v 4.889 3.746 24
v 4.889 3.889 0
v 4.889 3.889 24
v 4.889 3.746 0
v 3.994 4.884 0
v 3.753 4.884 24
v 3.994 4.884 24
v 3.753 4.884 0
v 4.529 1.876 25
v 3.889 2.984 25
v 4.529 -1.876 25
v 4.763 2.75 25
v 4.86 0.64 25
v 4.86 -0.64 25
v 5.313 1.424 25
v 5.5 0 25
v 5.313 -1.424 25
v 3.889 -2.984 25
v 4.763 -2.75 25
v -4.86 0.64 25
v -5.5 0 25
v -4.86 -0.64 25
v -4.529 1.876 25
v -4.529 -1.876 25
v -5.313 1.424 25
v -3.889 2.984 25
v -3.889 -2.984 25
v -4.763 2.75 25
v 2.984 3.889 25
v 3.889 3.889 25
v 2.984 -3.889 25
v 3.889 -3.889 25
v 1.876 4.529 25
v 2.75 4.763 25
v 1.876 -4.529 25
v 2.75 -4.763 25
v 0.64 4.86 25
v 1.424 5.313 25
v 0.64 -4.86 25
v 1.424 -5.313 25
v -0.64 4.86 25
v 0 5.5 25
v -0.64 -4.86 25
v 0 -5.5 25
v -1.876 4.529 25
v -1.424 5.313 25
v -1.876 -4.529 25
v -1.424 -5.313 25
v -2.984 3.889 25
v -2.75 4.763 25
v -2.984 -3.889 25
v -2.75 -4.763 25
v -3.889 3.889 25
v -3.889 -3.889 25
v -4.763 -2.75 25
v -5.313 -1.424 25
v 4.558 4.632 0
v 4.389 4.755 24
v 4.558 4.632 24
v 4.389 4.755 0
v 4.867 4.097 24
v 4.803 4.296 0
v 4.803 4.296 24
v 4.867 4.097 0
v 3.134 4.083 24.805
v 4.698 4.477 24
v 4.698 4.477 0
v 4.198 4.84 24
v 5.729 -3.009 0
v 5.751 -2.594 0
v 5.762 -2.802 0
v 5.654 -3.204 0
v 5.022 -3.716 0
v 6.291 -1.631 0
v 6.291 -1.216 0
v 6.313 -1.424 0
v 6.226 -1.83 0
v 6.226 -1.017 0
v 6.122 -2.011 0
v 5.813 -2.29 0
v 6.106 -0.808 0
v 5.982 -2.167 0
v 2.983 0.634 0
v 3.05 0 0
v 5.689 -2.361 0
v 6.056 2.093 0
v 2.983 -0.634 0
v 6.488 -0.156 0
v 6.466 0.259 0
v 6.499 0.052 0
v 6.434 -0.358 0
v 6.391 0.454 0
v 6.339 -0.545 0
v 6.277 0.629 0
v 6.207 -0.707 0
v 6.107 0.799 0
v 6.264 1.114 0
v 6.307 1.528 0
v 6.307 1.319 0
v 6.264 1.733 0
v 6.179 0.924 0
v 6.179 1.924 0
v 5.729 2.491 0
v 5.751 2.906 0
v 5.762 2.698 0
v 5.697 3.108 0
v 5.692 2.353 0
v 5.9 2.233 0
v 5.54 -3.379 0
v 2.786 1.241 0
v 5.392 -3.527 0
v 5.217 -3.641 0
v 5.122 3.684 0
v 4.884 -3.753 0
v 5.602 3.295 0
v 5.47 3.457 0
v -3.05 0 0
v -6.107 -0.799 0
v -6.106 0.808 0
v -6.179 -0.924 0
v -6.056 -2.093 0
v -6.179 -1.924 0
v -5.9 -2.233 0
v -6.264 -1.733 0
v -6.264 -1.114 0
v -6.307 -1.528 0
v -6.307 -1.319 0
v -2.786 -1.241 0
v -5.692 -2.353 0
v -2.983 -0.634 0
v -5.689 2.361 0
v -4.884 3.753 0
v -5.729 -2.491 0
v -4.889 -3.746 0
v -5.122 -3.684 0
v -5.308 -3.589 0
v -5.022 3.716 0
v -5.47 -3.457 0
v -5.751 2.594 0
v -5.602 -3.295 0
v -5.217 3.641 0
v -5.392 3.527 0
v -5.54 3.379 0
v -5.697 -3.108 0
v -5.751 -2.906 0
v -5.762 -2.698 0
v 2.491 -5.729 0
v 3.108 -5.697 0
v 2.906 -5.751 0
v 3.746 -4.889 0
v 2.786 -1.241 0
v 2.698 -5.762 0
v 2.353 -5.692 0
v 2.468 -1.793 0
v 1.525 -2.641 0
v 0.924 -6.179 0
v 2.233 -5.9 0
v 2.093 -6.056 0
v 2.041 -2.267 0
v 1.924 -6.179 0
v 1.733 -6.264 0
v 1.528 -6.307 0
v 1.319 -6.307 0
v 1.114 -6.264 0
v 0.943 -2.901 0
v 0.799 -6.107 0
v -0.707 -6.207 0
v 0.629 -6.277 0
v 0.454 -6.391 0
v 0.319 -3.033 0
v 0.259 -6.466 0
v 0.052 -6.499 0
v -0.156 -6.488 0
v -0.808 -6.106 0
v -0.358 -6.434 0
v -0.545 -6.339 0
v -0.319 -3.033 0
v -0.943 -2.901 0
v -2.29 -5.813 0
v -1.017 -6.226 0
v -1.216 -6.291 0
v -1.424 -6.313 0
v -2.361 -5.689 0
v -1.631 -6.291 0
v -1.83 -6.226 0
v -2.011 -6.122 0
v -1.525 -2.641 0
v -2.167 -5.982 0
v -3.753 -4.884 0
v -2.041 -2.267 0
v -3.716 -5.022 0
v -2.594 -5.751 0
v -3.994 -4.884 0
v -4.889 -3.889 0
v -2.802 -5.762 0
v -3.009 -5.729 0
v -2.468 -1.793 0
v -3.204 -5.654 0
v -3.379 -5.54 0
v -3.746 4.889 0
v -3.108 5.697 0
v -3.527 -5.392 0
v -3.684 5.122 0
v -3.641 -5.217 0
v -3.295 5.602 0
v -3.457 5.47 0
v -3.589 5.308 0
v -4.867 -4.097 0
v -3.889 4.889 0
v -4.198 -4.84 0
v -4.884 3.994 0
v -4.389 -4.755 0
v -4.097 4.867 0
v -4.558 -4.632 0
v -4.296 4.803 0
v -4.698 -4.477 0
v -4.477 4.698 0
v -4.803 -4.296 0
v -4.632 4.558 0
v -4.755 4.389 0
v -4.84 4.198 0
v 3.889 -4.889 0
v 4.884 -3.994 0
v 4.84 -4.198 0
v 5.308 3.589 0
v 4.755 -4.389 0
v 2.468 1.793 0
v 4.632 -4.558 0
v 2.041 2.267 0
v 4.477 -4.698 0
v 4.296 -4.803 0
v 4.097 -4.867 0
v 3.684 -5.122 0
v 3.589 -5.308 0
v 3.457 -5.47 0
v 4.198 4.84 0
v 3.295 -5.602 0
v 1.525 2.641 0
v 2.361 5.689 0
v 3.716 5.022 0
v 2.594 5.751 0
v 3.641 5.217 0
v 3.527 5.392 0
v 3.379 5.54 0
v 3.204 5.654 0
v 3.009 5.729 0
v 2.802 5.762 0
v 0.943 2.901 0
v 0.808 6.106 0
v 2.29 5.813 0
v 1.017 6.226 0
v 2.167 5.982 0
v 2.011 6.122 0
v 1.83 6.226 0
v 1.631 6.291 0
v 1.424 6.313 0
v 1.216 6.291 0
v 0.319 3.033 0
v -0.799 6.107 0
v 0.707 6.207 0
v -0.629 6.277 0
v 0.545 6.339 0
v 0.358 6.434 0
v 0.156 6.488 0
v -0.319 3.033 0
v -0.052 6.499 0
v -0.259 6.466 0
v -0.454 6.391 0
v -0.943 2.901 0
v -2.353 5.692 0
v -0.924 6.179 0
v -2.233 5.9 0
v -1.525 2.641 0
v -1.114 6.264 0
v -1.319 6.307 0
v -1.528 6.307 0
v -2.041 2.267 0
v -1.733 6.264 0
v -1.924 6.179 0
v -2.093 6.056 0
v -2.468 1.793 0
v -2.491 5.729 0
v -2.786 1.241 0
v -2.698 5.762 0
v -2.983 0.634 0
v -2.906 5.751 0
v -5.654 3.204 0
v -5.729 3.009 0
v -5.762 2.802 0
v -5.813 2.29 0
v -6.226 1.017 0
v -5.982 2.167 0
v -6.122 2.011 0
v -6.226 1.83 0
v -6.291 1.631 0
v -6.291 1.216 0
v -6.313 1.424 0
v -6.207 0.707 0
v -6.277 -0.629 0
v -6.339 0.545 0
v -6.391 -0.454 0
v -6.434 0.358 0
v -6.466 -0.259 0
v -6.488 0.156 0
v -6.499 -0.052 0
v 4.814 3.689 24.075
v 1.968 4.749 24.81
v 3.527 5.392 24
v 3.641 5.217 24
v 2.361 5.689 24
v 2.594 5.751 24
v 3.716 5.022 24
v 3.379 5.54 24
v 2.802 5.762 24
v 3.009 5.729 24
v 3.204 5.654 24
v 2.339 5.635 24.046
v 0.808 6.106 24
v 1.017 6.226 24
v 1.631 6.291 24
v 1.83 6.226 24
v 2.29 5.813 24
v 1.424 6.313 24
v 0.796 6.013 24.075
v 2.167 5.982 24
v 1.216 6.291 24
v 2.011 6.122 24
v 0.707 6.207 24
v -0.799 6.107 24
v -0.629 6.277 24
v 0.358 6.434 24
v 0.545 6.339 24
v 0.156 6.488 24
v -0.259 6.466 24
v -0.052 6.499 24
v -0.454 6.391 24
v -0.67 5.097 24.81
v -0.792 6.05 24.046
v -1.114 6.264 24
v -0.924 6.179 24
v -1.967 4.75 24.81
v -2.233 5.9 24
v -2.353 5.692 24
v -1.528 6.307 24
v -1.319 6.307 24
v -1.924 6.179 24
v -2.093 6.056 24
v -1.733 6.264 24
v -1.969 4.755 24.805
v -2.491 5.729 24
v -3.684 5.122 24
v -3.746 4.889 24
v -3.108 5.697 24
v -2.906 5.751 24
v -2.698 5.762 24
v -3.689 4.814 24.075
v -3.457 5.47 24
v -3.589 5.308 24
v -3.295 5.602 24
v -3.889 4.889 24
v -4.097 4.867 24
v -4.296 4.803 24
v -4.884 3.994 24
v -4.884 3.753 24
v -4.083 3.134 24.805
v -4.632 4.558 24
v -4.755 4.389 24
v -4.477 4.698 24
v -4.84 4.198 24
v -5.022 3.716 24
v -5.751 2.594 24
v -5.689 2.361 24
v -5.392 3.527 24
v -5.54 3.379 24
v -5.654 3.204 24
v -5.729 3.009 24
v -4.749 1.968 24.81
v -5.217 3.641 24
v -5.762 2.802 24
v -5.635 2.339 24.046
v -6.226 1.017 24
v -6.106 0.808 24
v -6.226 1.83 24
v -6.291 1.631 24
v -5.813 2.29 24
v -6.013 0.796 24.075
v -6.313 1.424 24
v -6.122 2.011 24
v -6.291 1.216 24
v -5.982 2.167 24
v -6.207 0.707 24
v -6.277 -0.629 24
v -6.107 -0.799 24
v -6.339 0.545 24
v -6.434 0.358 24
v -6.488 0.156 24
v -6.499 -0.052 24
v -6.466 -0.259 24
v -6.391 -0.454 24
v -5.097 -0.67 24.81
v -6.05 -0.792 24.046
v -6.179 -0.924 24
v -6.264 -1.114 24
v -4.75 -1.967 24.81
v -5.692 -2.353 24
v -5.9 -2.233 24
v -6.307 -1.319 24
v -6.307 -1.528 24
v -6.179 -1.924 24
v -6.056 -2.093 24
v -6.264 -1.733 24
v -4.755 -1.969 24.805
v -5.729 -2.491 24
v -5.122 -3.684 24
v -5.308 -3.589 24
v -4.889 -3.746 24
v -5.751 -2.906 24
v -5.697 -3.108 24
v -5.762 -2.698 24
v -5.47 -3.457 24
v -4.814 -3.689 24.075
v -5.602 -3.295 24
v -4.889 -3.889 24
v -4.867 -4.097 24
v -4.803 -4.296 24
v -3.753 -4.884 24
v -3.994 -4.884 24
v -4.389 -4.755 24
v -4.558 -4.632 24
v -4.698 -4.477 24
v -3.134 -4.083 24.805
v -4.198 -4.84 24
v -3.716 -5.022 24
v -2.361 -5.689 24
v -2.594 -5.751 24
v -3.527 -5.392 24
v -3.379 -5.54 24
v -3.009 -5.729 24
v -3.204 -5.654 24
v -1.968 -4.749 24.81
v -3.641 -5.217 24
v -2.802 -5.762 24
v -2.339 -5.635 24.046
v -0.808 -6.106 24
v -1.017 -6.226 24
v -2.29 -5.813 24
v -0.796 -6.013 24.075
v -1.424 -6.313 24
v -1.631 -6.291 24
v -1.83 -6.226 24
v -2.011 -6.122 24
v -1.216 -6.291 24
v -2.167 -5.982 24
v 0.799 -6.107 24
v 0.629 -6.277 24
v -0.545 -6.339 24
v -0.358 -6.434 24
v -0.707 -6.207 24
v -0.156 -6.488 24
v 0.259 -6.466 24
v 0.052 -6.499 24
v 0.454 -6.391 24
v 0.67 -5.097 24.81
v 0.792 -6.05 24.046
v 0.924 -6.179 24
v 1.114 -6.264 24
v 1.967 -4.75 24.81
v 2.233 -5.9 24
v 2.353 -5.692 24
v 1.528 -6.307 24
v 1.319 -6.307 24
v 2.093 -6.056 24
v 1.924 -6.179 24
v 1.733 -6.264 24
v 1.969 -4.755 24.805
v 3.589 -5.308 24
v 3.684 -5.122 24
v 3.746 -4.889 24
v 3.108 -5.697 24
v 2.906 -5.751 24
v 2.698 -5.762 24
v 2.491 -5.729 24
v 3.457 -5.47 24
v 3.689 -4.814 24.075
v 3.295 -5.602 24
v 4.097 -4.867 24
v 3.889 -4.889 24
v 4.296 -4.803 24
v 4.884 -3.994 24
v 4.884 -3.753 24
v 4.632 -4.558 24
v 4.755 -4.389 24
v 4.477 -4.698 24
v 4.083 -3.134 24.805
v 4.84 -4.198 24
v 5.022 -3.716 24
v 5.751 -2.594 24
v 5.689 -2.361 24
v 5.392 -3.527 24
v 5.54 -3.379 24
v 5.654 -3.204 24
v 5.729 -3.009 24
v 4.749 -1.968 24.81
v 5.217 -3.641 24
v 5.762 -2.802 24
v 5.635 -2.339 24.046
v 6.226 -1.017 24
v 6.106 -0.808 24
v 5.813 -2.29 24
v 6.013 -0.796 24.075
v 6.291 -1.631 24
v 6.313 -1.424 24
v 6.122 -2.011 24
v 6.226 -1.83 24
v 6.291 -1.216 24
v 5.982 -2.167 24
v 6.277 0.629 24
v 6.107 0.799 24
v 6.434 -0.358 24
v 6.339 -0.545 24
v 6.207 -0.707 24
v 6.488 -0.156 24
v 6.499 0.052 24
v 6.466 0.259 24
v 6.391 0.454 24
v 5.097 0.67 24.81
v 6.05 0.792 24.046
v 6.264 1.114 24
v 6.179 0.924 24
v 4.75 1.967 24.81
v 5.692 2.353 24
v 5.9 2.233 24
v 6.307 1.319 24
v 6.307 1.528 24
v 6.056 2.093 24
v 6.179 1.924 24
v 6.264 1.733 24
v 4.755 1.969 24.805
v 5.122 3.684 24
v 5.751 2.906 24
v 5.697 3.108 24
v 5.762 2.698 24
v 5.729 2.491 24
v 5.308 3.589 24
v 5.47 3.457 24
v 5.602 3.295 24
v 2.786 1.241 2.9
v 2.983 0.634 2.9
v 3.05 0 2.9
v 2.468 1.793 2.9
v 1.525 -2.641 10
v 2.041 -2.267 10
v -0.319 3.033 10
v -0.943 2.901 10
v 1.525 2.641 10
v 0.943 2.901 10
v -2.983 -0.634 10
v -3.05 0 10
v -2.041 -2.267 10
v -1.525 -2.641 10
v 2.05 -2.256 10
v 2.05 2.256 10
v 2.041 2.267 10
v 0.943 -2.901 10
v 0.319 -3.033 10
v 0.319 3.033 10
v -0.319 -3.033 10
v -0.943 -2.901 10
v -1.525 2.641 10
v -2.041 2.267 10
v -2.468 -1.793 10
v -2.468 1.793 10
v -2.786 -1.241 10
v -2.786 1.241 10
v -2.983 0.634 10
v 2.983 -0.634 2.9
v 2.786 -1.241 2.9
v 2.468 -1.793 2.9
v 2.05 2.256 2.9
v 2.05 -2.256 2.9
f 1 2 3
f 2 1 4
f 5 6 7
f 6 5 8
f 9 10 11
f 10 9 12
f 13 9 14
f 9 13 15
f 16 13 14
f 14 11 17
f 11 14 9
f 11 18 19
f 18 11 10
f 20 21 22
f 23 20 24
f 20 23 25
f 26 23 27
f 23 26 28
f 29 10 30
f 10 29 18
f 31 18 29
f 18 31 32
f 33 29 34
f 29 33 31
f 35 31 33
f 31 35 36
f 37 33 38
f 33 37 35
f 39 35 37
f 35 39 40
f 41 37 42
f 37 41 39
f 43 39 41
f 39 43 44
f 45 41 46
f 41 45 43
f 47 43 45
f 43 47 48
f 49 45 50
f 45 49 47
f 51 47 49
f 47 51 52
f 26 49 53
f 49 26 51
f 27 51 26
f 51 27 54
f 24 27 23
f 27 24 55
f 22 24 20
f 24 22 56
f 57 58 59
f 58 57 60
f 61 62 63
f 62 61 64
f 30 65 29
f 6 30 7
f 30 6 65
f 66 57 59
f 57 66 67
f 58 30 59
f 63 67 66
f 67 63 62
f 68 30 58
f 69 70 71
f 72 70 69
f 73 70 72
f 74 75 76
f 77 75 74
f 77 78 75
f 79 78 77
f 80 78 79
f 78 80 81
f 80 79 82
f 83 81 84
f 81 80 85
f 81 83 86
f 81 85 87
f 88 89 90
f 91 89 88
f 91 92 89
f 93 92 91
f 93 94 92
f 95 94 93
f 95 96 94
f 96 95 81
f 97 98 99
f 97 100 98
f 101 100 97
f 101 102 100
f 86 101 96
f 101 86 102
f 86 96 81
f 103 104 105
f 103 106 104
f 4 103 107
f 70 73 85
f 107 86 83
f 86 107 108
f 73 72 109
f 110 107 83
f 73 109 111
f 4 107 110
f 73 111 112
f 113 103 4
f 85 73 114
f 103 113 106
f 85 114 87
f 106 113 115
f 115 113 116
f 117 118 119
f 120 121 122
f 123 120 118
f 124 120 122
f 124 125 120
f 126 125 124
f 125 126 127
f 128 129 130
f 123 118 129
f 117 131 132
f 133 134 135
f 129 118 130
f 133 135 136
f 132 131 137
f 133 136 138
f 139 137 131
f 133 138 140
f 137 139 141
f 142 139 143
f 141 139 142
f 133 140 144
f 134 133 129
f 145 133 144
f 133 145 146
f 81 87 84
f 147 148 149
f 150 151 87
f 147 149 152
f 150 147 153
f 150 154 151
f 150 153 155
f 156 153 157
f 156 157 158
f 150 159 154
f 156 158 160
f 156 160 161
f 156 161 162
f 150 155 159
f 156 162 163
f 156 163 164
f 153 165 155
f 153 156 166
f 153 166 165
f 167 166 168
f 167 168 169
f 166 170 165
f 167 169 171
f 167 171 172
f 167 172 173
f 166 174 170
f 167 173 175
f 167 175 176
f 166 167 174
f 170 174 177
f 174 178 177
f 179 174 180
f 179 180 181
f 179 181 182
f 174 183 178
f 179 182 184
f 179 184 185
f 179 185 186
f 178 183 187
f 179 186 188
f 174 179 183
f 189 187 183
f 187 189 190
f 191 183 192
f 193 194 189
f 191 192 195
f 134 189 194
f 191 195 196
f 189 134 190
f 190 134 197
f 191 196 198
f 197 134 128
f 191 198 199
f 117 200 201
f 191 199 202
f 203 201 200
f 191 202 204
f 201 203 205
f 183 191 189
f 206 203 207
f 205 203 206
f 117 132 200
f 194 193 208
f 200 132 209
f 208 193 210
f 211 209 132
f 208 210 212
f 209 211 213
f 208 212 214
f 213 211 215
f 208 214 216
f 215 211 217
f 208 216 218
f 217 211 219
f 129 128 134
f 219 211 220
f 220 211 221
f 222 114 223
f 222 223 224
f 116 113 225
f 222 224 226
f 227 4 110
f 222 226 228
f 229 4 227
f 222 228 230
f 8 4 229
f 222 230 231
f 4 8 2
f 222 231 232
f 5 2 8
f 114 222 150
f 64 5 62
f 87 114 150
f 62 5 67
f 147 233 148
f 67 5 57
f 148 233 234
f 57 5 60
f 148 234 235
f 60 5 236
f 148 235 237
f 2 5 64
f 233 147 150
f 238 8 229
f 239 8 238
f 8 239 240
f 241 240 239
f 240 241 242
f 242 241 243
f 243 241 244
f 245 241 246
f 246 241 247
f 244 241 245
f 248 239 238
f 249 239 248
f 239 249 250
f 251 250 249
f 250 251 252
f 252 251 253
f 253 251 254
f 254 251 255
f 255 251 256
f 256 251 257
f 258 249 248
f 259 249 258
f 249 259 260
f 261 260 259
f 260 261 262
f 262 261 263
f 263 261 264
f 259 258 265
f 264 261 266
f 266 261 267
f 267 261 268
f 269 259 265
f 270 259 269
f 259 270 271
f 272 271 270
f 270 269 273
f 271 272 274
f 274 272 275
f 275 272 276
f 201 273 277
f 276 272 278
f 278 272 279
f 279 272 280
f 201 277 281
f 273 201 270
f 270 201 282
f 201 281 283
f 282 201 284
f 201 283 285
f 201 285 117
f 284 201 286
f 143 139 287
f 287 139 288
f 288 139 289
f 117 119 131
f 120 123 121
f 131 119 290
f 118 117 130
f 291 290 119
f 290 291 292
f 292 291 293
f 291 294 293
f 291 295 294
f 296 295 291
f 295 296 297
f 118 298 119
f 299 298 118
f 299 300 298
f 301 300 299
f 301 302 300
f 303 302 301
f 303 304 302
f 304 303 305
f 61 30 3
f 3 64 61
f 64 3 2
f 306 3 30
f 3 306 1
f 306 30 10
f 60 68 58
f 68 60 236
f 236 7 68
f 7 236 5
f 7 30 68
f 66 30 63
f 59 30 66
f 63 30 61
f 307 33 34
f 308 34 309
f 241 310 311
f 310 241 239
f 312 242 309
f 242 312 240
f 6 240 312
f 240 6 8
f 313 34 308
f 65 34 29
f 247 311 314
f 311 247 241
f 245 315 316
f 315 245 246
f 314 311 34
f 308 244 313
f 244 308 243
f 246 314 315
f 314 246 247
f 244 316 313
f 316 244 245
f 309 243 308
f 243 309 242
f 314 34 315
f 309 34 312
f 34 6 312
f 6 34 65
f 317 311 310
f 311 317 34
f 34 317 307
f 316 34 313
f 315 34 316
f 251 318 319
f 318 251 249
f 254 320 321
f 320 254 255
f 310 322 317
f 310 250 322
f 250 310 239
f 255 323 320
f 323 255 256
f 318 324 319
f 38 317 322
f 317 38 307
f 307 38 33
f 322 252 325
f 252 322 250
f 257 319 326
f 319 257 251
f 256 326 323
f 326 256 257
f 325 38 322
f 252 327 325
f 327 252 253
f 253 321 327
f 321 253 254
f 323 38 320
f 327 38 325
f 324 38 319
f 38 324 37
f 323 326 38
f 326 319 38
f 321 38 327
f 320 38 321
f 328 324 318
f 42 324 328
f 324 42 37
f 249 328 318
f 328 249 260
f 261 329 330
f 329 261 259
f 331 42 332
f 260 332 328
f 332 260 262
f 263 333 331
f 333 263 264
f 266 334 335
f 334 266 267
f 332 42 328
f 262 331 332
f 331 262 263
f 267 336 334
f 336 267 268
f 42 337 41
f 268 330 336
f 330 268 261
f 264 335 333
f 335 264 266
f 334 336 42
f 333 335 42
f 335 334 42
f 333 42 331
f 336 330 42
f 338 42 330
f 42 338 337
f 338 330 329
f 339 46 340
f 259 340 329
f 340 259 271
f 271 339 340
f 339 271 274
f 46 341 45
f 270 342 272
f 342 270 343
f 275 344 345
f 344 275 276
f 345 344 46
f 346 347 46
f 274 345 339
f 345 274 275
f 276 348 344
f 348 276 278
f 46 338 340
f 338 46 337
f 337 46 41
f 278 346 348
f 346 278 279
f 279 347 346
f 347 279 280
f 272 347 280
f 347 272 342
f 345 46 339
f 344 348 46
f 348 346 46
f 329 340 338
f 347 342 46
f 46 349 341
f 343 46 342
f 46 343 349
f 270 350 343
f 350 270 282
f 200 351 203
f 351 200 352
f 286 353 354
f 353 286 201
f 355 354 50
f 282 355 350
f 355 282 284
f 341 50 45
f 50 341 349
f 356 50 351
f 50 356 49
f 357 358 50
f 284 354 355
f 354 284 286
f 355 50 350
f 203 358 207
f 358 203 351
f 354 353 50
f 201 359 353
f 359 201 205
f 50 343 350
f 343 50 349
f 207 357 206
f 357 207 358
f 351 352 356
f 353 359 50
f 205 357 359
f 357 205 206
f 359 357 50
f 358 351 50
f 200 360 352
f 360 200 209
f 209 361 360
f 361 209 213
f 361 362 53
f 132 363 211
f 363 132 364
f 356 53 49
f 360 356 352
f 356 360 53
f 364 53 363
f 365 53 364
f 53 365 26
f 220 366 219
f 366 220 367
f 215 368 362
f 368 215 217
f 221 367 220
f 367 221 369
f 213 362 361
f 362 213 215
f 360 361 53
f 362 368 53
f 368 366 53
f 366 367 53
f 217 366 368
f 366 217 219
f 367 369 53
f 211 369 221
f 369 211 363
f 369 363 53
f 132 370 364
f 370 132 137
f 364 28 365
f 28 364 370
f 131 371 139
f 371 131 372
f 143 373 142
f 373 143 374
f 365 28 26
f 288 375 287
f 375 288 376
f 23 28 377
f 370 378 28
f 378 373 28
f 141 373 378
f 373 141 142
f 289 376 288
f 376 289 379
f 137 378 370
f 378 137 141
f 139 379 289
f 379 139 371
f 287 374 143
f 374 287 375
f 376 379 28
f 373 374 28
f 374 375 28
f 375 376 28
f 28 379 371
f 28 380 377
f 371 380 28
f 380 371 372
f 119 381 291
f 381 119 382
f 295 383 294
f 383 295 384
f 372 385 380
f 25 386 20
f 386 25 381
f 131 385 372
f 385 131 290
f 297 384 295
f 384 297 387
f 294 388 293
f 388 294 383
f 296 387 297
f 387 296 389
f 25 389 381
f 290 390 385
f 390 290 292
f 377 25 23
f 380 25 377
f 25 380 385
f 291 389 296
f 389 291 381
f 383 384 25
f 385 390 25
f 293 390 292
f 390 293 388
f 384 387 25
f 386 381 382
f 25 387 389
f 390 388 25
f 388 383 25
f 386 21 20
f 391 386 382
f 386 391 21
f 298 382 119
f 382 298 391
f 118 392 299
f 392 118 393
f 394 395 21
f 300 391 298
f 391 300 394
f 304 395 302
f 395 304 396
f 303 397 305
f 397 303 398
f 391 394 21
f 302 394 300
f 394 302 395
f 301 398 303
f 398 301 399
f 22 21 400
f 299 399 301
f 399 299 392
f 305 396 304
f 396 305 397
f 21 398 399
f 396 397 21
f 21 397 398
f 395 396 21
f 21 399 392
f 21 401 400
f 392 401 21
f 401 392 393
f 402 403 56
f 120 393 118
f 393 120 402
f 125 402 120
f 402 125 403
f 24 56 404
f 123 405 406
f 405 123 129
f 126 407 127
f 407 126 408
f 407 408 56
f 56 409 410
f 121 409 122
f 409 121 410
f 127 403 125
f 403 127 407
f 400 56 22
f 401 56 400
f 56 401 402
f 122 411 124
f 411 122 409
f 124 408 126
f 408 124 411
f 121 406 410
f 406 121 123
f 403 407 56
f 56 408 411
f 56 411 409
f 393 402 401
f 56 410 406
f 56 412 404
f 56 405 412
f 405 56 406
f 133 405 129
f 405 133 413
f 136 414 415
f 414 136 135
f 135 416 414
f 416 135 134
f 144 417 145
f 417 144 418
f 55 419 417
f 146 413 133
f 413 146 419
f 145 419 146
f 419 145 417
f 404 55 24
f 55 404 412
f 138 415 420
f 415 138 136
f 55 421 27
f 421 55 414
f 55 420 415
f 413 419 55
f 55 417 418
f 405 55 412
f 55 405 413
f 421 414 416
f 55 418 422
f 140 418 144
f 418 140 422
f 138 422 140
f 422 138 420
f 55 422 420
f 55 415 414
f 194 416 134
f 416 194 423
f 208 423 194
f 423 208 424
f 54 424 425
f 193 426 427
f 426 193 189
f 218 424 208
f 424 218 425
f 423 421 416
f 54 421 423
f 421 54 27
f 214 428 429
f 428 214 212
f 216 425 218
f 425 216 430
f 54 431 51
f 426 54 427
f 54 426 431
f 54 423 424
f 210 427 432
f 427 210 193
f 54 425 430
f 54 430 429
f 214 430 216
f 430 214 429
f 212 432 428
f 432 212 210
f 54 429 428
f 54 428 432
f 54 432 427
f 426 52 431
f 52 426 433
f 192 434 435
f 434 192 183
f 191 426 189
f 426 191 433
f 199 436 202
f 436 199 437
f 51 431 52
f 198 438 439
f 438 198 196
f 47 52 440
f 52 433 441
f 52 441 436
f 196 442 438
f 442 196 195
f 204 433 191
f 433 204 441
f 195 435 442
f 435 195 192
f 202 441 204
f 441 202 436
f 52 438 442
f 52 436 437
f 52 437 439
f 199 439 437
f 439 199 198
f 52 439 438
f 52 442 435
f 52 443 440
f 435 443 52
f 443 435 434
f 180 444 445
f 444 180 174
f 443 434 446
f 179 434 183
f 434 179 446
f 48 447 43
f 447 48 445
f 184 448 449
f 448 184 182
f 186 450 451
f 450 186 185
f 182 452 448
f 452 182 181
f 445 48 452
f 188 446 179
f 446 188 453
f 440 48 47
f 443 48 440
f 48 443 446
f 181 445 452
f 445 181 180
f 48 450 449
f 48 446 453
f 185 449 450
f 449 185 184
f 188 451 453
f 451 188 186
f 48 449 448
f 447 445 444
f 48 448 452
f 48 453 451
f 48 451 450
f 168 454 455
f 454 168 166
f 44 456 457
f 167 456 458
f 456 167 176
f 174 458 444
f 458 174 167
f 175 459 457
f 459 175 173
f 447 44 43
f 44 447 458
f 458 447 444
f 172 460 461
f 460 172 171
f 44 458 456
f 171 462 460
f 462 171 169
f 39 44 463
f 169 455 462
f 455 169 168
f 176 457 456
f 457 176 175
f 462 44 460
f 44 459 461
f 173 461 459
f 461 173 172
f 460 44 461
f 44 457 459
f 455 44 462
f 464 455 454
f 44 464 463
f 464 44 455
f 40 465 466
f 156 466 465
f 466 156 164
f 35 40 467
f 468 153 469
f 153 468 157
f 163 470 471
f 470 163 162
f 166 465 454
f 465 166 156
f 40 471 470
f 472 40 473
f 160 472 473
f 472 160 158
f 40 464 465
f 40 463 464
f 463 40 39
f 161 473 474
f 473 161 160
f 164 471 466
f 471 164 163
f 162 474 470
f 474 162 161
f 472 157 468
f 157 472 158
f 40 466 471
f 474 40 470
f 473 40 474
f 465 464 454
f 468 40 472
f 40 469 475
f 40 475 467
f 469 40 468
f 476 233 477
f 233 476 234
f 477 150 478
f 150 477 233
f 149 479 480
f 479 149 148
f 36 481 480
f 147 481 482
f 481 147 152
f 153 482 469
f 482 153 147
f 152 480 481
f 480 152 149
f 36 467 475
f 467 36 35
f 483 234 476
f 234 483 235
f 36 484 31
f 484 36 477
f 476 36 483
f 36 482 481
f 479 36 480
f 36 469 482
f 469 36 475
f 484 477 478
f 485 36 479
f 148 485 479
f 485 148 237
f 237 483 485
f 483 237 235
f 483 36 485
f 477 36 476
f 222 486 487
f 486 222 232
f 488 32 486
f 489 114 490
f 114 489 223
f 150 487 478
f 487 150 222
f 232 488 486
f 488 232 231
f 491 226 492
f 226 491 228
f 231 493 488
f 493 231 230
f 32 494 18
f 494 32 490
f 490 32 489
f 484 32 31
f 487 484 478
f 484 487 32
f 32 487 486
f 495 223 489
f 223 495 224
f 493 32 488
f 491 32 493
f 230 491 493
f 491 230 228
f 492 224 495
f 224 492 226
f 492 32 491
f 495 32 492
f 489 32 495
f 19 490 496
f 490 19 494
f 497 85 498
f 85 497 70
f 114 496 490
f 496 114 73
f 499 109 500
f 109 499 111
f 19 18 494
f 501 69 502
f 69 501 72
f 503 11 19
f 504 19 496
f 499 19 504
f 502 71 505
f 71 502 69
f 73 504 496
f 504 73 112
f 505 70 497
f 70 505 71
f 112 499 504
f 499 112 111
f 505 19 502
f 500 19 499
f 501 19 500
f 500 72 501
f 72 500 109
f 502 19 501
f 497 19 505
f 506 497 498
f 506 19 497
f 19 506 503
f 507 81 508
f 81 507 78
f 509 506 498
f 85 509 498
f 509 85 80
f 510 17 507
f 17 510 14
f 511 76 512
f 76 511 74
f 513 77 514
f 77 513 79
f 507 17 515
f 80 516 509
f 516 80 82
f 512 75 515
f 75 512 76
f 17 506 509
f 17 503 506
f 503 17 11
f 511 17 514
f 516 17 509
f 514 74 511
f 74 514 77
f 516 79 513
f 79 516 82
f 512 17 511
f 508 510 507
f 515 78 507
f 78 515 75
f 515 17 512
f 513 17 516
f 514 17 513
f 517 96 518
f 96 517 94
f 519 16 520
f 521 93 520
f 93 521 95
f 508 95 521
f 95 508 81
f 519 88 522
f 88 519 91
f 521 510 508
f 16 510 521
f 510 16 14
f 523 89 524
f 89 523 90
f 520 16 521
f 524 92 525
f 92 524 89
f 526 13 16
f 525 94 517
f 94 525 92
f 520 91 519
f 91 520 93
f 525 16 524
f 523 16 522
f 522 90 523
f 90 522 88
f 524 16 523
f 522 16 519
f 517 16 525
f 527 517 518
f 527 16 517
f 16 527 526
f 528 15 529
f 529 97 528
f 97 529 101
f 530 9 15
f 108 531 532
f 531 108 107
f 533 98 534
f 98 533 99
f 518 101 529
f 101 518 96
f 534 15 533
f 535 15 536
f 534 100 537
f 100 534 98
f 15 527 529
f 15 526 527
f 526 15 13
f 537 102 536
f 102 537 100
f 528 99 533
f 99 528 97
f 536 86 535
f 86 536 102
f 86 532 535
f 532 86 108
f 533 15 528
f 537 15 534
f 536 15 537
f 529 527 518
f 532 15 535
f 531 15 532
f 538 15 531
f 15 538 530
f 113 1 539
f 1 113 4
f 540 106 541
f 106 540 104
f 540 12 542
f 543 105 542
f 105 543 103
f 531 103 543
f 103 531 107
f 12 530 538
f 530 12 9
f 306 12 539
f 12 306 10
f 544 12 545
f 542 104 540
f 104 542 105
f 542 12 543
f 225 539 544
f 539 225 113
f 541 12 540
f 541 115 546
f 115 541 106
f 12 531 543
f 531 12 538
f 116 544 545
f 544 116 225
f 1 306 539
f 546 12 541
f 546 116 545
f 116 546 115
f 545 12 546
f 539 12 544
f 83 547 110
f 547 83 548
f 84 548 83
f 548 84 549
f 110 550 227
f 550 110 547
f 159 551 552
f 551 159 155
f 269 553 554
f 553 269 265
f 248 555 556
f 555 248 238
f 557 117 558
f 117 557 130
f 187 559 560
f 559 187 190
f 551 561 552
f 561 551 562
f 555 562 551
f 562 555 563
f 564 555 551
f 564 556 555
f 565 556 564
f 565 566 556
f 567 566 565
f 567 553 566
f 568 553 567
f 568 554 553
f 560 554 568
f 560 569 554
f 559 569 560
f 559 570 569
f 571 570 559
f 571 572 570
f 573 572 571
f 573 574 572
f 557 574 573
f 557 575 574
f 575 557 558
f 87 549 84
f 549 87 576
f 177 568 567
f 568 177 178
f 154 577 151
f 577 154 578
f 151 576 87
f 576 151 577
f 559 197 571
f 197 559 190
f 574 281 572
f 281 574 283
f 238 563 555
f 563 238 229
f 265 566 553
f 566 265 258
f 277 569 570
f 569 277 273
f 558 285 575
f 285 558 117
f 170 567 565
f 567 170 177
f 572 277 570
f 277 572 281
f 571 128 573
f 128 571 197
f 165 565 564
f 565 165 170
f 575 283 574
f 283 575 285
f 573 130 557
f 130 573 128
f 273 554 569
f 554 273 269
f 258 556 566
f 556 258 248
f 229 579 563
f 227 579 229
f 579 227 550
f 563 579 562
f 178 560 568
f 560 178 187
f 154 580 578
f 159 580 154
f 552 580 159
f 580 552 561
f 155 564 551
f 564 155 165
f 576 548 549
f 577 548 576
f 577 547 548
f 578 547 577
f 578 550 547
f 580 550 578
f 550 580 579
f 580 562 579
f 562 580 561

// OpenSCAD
$fs = 0.1;
sqrt_2 = 1.41421356;
knob_outer_height = 25;
knob_outer_diameter = 13;
knob_inner_height = 10;
knob_inner_diameter = 6.1;
knob_inner_D_interval = 5.1;
knob_inner_D_height = 7;

module cylinderOneSideChamfered (diameter, height, depth) 
{
    minkowski () {
        cylinder(d = diameter-2*depth, h = height-(1*depth));
        cylinder(h= depth, r1 = depth, r2 =0);
    }
}

//cube([20,20,20], center=true);



difference (){
    for(i = [0:15:360]){
        rotate([0,0,i]){
            minkowski () {
                cylinder(h = 1, r1=1, r2 = 0);
                cube([(knob_outer_diameter/2-1) / sqrt_2, (knob_outer_diameter/2-1) / sqrt_2, knob_outer_height-1]);
            }
        }
    }
    translate([0, 0, -0.1]){
        difference (){
            cylinder(d = knob_inner_diameter, h = knob_inner_height+0.1);
            translate([knob_inner_D_interval-knob_inner_diameter/2 + 5, 0, 5 + knob_inner_height - knob_inner_D_height]) {
                cube([10, 10, 10], center=true);
            }
        }
        cylinder(d = knob_inner_diameter, h = knob_inner_height-knob_inner_D_height);
    }
}
//cylinder(d = sticktop_diameter, h = sticktop_height);

// translate([0, 0, -stem_height/2]) 
// {
//     difference () 
//     {
//         cylinder(d = 2 * stem_thickness + stem_c_diameter, h = stem_height);      
//         translate([0,0,-0.2]) 
//         {
//             difference () 
//             {
//                 cylinder(d = stem_c_diameter, h = stem_height+0.4);
//                 translate([stem_c_diameter/2 + stem_l_interval/2, 0, 0]) 
//                     cube([stem_c_diameter, stem_c_diameter, 10], center=true);
//                 translate([-stem_c_diameter/2 - stem_l_interval/2, 0, 0]) 
//                     cube([stem_c_diameter, stem_c_diameter, 10], center=true);
//             }
//         }
//     }
// }
